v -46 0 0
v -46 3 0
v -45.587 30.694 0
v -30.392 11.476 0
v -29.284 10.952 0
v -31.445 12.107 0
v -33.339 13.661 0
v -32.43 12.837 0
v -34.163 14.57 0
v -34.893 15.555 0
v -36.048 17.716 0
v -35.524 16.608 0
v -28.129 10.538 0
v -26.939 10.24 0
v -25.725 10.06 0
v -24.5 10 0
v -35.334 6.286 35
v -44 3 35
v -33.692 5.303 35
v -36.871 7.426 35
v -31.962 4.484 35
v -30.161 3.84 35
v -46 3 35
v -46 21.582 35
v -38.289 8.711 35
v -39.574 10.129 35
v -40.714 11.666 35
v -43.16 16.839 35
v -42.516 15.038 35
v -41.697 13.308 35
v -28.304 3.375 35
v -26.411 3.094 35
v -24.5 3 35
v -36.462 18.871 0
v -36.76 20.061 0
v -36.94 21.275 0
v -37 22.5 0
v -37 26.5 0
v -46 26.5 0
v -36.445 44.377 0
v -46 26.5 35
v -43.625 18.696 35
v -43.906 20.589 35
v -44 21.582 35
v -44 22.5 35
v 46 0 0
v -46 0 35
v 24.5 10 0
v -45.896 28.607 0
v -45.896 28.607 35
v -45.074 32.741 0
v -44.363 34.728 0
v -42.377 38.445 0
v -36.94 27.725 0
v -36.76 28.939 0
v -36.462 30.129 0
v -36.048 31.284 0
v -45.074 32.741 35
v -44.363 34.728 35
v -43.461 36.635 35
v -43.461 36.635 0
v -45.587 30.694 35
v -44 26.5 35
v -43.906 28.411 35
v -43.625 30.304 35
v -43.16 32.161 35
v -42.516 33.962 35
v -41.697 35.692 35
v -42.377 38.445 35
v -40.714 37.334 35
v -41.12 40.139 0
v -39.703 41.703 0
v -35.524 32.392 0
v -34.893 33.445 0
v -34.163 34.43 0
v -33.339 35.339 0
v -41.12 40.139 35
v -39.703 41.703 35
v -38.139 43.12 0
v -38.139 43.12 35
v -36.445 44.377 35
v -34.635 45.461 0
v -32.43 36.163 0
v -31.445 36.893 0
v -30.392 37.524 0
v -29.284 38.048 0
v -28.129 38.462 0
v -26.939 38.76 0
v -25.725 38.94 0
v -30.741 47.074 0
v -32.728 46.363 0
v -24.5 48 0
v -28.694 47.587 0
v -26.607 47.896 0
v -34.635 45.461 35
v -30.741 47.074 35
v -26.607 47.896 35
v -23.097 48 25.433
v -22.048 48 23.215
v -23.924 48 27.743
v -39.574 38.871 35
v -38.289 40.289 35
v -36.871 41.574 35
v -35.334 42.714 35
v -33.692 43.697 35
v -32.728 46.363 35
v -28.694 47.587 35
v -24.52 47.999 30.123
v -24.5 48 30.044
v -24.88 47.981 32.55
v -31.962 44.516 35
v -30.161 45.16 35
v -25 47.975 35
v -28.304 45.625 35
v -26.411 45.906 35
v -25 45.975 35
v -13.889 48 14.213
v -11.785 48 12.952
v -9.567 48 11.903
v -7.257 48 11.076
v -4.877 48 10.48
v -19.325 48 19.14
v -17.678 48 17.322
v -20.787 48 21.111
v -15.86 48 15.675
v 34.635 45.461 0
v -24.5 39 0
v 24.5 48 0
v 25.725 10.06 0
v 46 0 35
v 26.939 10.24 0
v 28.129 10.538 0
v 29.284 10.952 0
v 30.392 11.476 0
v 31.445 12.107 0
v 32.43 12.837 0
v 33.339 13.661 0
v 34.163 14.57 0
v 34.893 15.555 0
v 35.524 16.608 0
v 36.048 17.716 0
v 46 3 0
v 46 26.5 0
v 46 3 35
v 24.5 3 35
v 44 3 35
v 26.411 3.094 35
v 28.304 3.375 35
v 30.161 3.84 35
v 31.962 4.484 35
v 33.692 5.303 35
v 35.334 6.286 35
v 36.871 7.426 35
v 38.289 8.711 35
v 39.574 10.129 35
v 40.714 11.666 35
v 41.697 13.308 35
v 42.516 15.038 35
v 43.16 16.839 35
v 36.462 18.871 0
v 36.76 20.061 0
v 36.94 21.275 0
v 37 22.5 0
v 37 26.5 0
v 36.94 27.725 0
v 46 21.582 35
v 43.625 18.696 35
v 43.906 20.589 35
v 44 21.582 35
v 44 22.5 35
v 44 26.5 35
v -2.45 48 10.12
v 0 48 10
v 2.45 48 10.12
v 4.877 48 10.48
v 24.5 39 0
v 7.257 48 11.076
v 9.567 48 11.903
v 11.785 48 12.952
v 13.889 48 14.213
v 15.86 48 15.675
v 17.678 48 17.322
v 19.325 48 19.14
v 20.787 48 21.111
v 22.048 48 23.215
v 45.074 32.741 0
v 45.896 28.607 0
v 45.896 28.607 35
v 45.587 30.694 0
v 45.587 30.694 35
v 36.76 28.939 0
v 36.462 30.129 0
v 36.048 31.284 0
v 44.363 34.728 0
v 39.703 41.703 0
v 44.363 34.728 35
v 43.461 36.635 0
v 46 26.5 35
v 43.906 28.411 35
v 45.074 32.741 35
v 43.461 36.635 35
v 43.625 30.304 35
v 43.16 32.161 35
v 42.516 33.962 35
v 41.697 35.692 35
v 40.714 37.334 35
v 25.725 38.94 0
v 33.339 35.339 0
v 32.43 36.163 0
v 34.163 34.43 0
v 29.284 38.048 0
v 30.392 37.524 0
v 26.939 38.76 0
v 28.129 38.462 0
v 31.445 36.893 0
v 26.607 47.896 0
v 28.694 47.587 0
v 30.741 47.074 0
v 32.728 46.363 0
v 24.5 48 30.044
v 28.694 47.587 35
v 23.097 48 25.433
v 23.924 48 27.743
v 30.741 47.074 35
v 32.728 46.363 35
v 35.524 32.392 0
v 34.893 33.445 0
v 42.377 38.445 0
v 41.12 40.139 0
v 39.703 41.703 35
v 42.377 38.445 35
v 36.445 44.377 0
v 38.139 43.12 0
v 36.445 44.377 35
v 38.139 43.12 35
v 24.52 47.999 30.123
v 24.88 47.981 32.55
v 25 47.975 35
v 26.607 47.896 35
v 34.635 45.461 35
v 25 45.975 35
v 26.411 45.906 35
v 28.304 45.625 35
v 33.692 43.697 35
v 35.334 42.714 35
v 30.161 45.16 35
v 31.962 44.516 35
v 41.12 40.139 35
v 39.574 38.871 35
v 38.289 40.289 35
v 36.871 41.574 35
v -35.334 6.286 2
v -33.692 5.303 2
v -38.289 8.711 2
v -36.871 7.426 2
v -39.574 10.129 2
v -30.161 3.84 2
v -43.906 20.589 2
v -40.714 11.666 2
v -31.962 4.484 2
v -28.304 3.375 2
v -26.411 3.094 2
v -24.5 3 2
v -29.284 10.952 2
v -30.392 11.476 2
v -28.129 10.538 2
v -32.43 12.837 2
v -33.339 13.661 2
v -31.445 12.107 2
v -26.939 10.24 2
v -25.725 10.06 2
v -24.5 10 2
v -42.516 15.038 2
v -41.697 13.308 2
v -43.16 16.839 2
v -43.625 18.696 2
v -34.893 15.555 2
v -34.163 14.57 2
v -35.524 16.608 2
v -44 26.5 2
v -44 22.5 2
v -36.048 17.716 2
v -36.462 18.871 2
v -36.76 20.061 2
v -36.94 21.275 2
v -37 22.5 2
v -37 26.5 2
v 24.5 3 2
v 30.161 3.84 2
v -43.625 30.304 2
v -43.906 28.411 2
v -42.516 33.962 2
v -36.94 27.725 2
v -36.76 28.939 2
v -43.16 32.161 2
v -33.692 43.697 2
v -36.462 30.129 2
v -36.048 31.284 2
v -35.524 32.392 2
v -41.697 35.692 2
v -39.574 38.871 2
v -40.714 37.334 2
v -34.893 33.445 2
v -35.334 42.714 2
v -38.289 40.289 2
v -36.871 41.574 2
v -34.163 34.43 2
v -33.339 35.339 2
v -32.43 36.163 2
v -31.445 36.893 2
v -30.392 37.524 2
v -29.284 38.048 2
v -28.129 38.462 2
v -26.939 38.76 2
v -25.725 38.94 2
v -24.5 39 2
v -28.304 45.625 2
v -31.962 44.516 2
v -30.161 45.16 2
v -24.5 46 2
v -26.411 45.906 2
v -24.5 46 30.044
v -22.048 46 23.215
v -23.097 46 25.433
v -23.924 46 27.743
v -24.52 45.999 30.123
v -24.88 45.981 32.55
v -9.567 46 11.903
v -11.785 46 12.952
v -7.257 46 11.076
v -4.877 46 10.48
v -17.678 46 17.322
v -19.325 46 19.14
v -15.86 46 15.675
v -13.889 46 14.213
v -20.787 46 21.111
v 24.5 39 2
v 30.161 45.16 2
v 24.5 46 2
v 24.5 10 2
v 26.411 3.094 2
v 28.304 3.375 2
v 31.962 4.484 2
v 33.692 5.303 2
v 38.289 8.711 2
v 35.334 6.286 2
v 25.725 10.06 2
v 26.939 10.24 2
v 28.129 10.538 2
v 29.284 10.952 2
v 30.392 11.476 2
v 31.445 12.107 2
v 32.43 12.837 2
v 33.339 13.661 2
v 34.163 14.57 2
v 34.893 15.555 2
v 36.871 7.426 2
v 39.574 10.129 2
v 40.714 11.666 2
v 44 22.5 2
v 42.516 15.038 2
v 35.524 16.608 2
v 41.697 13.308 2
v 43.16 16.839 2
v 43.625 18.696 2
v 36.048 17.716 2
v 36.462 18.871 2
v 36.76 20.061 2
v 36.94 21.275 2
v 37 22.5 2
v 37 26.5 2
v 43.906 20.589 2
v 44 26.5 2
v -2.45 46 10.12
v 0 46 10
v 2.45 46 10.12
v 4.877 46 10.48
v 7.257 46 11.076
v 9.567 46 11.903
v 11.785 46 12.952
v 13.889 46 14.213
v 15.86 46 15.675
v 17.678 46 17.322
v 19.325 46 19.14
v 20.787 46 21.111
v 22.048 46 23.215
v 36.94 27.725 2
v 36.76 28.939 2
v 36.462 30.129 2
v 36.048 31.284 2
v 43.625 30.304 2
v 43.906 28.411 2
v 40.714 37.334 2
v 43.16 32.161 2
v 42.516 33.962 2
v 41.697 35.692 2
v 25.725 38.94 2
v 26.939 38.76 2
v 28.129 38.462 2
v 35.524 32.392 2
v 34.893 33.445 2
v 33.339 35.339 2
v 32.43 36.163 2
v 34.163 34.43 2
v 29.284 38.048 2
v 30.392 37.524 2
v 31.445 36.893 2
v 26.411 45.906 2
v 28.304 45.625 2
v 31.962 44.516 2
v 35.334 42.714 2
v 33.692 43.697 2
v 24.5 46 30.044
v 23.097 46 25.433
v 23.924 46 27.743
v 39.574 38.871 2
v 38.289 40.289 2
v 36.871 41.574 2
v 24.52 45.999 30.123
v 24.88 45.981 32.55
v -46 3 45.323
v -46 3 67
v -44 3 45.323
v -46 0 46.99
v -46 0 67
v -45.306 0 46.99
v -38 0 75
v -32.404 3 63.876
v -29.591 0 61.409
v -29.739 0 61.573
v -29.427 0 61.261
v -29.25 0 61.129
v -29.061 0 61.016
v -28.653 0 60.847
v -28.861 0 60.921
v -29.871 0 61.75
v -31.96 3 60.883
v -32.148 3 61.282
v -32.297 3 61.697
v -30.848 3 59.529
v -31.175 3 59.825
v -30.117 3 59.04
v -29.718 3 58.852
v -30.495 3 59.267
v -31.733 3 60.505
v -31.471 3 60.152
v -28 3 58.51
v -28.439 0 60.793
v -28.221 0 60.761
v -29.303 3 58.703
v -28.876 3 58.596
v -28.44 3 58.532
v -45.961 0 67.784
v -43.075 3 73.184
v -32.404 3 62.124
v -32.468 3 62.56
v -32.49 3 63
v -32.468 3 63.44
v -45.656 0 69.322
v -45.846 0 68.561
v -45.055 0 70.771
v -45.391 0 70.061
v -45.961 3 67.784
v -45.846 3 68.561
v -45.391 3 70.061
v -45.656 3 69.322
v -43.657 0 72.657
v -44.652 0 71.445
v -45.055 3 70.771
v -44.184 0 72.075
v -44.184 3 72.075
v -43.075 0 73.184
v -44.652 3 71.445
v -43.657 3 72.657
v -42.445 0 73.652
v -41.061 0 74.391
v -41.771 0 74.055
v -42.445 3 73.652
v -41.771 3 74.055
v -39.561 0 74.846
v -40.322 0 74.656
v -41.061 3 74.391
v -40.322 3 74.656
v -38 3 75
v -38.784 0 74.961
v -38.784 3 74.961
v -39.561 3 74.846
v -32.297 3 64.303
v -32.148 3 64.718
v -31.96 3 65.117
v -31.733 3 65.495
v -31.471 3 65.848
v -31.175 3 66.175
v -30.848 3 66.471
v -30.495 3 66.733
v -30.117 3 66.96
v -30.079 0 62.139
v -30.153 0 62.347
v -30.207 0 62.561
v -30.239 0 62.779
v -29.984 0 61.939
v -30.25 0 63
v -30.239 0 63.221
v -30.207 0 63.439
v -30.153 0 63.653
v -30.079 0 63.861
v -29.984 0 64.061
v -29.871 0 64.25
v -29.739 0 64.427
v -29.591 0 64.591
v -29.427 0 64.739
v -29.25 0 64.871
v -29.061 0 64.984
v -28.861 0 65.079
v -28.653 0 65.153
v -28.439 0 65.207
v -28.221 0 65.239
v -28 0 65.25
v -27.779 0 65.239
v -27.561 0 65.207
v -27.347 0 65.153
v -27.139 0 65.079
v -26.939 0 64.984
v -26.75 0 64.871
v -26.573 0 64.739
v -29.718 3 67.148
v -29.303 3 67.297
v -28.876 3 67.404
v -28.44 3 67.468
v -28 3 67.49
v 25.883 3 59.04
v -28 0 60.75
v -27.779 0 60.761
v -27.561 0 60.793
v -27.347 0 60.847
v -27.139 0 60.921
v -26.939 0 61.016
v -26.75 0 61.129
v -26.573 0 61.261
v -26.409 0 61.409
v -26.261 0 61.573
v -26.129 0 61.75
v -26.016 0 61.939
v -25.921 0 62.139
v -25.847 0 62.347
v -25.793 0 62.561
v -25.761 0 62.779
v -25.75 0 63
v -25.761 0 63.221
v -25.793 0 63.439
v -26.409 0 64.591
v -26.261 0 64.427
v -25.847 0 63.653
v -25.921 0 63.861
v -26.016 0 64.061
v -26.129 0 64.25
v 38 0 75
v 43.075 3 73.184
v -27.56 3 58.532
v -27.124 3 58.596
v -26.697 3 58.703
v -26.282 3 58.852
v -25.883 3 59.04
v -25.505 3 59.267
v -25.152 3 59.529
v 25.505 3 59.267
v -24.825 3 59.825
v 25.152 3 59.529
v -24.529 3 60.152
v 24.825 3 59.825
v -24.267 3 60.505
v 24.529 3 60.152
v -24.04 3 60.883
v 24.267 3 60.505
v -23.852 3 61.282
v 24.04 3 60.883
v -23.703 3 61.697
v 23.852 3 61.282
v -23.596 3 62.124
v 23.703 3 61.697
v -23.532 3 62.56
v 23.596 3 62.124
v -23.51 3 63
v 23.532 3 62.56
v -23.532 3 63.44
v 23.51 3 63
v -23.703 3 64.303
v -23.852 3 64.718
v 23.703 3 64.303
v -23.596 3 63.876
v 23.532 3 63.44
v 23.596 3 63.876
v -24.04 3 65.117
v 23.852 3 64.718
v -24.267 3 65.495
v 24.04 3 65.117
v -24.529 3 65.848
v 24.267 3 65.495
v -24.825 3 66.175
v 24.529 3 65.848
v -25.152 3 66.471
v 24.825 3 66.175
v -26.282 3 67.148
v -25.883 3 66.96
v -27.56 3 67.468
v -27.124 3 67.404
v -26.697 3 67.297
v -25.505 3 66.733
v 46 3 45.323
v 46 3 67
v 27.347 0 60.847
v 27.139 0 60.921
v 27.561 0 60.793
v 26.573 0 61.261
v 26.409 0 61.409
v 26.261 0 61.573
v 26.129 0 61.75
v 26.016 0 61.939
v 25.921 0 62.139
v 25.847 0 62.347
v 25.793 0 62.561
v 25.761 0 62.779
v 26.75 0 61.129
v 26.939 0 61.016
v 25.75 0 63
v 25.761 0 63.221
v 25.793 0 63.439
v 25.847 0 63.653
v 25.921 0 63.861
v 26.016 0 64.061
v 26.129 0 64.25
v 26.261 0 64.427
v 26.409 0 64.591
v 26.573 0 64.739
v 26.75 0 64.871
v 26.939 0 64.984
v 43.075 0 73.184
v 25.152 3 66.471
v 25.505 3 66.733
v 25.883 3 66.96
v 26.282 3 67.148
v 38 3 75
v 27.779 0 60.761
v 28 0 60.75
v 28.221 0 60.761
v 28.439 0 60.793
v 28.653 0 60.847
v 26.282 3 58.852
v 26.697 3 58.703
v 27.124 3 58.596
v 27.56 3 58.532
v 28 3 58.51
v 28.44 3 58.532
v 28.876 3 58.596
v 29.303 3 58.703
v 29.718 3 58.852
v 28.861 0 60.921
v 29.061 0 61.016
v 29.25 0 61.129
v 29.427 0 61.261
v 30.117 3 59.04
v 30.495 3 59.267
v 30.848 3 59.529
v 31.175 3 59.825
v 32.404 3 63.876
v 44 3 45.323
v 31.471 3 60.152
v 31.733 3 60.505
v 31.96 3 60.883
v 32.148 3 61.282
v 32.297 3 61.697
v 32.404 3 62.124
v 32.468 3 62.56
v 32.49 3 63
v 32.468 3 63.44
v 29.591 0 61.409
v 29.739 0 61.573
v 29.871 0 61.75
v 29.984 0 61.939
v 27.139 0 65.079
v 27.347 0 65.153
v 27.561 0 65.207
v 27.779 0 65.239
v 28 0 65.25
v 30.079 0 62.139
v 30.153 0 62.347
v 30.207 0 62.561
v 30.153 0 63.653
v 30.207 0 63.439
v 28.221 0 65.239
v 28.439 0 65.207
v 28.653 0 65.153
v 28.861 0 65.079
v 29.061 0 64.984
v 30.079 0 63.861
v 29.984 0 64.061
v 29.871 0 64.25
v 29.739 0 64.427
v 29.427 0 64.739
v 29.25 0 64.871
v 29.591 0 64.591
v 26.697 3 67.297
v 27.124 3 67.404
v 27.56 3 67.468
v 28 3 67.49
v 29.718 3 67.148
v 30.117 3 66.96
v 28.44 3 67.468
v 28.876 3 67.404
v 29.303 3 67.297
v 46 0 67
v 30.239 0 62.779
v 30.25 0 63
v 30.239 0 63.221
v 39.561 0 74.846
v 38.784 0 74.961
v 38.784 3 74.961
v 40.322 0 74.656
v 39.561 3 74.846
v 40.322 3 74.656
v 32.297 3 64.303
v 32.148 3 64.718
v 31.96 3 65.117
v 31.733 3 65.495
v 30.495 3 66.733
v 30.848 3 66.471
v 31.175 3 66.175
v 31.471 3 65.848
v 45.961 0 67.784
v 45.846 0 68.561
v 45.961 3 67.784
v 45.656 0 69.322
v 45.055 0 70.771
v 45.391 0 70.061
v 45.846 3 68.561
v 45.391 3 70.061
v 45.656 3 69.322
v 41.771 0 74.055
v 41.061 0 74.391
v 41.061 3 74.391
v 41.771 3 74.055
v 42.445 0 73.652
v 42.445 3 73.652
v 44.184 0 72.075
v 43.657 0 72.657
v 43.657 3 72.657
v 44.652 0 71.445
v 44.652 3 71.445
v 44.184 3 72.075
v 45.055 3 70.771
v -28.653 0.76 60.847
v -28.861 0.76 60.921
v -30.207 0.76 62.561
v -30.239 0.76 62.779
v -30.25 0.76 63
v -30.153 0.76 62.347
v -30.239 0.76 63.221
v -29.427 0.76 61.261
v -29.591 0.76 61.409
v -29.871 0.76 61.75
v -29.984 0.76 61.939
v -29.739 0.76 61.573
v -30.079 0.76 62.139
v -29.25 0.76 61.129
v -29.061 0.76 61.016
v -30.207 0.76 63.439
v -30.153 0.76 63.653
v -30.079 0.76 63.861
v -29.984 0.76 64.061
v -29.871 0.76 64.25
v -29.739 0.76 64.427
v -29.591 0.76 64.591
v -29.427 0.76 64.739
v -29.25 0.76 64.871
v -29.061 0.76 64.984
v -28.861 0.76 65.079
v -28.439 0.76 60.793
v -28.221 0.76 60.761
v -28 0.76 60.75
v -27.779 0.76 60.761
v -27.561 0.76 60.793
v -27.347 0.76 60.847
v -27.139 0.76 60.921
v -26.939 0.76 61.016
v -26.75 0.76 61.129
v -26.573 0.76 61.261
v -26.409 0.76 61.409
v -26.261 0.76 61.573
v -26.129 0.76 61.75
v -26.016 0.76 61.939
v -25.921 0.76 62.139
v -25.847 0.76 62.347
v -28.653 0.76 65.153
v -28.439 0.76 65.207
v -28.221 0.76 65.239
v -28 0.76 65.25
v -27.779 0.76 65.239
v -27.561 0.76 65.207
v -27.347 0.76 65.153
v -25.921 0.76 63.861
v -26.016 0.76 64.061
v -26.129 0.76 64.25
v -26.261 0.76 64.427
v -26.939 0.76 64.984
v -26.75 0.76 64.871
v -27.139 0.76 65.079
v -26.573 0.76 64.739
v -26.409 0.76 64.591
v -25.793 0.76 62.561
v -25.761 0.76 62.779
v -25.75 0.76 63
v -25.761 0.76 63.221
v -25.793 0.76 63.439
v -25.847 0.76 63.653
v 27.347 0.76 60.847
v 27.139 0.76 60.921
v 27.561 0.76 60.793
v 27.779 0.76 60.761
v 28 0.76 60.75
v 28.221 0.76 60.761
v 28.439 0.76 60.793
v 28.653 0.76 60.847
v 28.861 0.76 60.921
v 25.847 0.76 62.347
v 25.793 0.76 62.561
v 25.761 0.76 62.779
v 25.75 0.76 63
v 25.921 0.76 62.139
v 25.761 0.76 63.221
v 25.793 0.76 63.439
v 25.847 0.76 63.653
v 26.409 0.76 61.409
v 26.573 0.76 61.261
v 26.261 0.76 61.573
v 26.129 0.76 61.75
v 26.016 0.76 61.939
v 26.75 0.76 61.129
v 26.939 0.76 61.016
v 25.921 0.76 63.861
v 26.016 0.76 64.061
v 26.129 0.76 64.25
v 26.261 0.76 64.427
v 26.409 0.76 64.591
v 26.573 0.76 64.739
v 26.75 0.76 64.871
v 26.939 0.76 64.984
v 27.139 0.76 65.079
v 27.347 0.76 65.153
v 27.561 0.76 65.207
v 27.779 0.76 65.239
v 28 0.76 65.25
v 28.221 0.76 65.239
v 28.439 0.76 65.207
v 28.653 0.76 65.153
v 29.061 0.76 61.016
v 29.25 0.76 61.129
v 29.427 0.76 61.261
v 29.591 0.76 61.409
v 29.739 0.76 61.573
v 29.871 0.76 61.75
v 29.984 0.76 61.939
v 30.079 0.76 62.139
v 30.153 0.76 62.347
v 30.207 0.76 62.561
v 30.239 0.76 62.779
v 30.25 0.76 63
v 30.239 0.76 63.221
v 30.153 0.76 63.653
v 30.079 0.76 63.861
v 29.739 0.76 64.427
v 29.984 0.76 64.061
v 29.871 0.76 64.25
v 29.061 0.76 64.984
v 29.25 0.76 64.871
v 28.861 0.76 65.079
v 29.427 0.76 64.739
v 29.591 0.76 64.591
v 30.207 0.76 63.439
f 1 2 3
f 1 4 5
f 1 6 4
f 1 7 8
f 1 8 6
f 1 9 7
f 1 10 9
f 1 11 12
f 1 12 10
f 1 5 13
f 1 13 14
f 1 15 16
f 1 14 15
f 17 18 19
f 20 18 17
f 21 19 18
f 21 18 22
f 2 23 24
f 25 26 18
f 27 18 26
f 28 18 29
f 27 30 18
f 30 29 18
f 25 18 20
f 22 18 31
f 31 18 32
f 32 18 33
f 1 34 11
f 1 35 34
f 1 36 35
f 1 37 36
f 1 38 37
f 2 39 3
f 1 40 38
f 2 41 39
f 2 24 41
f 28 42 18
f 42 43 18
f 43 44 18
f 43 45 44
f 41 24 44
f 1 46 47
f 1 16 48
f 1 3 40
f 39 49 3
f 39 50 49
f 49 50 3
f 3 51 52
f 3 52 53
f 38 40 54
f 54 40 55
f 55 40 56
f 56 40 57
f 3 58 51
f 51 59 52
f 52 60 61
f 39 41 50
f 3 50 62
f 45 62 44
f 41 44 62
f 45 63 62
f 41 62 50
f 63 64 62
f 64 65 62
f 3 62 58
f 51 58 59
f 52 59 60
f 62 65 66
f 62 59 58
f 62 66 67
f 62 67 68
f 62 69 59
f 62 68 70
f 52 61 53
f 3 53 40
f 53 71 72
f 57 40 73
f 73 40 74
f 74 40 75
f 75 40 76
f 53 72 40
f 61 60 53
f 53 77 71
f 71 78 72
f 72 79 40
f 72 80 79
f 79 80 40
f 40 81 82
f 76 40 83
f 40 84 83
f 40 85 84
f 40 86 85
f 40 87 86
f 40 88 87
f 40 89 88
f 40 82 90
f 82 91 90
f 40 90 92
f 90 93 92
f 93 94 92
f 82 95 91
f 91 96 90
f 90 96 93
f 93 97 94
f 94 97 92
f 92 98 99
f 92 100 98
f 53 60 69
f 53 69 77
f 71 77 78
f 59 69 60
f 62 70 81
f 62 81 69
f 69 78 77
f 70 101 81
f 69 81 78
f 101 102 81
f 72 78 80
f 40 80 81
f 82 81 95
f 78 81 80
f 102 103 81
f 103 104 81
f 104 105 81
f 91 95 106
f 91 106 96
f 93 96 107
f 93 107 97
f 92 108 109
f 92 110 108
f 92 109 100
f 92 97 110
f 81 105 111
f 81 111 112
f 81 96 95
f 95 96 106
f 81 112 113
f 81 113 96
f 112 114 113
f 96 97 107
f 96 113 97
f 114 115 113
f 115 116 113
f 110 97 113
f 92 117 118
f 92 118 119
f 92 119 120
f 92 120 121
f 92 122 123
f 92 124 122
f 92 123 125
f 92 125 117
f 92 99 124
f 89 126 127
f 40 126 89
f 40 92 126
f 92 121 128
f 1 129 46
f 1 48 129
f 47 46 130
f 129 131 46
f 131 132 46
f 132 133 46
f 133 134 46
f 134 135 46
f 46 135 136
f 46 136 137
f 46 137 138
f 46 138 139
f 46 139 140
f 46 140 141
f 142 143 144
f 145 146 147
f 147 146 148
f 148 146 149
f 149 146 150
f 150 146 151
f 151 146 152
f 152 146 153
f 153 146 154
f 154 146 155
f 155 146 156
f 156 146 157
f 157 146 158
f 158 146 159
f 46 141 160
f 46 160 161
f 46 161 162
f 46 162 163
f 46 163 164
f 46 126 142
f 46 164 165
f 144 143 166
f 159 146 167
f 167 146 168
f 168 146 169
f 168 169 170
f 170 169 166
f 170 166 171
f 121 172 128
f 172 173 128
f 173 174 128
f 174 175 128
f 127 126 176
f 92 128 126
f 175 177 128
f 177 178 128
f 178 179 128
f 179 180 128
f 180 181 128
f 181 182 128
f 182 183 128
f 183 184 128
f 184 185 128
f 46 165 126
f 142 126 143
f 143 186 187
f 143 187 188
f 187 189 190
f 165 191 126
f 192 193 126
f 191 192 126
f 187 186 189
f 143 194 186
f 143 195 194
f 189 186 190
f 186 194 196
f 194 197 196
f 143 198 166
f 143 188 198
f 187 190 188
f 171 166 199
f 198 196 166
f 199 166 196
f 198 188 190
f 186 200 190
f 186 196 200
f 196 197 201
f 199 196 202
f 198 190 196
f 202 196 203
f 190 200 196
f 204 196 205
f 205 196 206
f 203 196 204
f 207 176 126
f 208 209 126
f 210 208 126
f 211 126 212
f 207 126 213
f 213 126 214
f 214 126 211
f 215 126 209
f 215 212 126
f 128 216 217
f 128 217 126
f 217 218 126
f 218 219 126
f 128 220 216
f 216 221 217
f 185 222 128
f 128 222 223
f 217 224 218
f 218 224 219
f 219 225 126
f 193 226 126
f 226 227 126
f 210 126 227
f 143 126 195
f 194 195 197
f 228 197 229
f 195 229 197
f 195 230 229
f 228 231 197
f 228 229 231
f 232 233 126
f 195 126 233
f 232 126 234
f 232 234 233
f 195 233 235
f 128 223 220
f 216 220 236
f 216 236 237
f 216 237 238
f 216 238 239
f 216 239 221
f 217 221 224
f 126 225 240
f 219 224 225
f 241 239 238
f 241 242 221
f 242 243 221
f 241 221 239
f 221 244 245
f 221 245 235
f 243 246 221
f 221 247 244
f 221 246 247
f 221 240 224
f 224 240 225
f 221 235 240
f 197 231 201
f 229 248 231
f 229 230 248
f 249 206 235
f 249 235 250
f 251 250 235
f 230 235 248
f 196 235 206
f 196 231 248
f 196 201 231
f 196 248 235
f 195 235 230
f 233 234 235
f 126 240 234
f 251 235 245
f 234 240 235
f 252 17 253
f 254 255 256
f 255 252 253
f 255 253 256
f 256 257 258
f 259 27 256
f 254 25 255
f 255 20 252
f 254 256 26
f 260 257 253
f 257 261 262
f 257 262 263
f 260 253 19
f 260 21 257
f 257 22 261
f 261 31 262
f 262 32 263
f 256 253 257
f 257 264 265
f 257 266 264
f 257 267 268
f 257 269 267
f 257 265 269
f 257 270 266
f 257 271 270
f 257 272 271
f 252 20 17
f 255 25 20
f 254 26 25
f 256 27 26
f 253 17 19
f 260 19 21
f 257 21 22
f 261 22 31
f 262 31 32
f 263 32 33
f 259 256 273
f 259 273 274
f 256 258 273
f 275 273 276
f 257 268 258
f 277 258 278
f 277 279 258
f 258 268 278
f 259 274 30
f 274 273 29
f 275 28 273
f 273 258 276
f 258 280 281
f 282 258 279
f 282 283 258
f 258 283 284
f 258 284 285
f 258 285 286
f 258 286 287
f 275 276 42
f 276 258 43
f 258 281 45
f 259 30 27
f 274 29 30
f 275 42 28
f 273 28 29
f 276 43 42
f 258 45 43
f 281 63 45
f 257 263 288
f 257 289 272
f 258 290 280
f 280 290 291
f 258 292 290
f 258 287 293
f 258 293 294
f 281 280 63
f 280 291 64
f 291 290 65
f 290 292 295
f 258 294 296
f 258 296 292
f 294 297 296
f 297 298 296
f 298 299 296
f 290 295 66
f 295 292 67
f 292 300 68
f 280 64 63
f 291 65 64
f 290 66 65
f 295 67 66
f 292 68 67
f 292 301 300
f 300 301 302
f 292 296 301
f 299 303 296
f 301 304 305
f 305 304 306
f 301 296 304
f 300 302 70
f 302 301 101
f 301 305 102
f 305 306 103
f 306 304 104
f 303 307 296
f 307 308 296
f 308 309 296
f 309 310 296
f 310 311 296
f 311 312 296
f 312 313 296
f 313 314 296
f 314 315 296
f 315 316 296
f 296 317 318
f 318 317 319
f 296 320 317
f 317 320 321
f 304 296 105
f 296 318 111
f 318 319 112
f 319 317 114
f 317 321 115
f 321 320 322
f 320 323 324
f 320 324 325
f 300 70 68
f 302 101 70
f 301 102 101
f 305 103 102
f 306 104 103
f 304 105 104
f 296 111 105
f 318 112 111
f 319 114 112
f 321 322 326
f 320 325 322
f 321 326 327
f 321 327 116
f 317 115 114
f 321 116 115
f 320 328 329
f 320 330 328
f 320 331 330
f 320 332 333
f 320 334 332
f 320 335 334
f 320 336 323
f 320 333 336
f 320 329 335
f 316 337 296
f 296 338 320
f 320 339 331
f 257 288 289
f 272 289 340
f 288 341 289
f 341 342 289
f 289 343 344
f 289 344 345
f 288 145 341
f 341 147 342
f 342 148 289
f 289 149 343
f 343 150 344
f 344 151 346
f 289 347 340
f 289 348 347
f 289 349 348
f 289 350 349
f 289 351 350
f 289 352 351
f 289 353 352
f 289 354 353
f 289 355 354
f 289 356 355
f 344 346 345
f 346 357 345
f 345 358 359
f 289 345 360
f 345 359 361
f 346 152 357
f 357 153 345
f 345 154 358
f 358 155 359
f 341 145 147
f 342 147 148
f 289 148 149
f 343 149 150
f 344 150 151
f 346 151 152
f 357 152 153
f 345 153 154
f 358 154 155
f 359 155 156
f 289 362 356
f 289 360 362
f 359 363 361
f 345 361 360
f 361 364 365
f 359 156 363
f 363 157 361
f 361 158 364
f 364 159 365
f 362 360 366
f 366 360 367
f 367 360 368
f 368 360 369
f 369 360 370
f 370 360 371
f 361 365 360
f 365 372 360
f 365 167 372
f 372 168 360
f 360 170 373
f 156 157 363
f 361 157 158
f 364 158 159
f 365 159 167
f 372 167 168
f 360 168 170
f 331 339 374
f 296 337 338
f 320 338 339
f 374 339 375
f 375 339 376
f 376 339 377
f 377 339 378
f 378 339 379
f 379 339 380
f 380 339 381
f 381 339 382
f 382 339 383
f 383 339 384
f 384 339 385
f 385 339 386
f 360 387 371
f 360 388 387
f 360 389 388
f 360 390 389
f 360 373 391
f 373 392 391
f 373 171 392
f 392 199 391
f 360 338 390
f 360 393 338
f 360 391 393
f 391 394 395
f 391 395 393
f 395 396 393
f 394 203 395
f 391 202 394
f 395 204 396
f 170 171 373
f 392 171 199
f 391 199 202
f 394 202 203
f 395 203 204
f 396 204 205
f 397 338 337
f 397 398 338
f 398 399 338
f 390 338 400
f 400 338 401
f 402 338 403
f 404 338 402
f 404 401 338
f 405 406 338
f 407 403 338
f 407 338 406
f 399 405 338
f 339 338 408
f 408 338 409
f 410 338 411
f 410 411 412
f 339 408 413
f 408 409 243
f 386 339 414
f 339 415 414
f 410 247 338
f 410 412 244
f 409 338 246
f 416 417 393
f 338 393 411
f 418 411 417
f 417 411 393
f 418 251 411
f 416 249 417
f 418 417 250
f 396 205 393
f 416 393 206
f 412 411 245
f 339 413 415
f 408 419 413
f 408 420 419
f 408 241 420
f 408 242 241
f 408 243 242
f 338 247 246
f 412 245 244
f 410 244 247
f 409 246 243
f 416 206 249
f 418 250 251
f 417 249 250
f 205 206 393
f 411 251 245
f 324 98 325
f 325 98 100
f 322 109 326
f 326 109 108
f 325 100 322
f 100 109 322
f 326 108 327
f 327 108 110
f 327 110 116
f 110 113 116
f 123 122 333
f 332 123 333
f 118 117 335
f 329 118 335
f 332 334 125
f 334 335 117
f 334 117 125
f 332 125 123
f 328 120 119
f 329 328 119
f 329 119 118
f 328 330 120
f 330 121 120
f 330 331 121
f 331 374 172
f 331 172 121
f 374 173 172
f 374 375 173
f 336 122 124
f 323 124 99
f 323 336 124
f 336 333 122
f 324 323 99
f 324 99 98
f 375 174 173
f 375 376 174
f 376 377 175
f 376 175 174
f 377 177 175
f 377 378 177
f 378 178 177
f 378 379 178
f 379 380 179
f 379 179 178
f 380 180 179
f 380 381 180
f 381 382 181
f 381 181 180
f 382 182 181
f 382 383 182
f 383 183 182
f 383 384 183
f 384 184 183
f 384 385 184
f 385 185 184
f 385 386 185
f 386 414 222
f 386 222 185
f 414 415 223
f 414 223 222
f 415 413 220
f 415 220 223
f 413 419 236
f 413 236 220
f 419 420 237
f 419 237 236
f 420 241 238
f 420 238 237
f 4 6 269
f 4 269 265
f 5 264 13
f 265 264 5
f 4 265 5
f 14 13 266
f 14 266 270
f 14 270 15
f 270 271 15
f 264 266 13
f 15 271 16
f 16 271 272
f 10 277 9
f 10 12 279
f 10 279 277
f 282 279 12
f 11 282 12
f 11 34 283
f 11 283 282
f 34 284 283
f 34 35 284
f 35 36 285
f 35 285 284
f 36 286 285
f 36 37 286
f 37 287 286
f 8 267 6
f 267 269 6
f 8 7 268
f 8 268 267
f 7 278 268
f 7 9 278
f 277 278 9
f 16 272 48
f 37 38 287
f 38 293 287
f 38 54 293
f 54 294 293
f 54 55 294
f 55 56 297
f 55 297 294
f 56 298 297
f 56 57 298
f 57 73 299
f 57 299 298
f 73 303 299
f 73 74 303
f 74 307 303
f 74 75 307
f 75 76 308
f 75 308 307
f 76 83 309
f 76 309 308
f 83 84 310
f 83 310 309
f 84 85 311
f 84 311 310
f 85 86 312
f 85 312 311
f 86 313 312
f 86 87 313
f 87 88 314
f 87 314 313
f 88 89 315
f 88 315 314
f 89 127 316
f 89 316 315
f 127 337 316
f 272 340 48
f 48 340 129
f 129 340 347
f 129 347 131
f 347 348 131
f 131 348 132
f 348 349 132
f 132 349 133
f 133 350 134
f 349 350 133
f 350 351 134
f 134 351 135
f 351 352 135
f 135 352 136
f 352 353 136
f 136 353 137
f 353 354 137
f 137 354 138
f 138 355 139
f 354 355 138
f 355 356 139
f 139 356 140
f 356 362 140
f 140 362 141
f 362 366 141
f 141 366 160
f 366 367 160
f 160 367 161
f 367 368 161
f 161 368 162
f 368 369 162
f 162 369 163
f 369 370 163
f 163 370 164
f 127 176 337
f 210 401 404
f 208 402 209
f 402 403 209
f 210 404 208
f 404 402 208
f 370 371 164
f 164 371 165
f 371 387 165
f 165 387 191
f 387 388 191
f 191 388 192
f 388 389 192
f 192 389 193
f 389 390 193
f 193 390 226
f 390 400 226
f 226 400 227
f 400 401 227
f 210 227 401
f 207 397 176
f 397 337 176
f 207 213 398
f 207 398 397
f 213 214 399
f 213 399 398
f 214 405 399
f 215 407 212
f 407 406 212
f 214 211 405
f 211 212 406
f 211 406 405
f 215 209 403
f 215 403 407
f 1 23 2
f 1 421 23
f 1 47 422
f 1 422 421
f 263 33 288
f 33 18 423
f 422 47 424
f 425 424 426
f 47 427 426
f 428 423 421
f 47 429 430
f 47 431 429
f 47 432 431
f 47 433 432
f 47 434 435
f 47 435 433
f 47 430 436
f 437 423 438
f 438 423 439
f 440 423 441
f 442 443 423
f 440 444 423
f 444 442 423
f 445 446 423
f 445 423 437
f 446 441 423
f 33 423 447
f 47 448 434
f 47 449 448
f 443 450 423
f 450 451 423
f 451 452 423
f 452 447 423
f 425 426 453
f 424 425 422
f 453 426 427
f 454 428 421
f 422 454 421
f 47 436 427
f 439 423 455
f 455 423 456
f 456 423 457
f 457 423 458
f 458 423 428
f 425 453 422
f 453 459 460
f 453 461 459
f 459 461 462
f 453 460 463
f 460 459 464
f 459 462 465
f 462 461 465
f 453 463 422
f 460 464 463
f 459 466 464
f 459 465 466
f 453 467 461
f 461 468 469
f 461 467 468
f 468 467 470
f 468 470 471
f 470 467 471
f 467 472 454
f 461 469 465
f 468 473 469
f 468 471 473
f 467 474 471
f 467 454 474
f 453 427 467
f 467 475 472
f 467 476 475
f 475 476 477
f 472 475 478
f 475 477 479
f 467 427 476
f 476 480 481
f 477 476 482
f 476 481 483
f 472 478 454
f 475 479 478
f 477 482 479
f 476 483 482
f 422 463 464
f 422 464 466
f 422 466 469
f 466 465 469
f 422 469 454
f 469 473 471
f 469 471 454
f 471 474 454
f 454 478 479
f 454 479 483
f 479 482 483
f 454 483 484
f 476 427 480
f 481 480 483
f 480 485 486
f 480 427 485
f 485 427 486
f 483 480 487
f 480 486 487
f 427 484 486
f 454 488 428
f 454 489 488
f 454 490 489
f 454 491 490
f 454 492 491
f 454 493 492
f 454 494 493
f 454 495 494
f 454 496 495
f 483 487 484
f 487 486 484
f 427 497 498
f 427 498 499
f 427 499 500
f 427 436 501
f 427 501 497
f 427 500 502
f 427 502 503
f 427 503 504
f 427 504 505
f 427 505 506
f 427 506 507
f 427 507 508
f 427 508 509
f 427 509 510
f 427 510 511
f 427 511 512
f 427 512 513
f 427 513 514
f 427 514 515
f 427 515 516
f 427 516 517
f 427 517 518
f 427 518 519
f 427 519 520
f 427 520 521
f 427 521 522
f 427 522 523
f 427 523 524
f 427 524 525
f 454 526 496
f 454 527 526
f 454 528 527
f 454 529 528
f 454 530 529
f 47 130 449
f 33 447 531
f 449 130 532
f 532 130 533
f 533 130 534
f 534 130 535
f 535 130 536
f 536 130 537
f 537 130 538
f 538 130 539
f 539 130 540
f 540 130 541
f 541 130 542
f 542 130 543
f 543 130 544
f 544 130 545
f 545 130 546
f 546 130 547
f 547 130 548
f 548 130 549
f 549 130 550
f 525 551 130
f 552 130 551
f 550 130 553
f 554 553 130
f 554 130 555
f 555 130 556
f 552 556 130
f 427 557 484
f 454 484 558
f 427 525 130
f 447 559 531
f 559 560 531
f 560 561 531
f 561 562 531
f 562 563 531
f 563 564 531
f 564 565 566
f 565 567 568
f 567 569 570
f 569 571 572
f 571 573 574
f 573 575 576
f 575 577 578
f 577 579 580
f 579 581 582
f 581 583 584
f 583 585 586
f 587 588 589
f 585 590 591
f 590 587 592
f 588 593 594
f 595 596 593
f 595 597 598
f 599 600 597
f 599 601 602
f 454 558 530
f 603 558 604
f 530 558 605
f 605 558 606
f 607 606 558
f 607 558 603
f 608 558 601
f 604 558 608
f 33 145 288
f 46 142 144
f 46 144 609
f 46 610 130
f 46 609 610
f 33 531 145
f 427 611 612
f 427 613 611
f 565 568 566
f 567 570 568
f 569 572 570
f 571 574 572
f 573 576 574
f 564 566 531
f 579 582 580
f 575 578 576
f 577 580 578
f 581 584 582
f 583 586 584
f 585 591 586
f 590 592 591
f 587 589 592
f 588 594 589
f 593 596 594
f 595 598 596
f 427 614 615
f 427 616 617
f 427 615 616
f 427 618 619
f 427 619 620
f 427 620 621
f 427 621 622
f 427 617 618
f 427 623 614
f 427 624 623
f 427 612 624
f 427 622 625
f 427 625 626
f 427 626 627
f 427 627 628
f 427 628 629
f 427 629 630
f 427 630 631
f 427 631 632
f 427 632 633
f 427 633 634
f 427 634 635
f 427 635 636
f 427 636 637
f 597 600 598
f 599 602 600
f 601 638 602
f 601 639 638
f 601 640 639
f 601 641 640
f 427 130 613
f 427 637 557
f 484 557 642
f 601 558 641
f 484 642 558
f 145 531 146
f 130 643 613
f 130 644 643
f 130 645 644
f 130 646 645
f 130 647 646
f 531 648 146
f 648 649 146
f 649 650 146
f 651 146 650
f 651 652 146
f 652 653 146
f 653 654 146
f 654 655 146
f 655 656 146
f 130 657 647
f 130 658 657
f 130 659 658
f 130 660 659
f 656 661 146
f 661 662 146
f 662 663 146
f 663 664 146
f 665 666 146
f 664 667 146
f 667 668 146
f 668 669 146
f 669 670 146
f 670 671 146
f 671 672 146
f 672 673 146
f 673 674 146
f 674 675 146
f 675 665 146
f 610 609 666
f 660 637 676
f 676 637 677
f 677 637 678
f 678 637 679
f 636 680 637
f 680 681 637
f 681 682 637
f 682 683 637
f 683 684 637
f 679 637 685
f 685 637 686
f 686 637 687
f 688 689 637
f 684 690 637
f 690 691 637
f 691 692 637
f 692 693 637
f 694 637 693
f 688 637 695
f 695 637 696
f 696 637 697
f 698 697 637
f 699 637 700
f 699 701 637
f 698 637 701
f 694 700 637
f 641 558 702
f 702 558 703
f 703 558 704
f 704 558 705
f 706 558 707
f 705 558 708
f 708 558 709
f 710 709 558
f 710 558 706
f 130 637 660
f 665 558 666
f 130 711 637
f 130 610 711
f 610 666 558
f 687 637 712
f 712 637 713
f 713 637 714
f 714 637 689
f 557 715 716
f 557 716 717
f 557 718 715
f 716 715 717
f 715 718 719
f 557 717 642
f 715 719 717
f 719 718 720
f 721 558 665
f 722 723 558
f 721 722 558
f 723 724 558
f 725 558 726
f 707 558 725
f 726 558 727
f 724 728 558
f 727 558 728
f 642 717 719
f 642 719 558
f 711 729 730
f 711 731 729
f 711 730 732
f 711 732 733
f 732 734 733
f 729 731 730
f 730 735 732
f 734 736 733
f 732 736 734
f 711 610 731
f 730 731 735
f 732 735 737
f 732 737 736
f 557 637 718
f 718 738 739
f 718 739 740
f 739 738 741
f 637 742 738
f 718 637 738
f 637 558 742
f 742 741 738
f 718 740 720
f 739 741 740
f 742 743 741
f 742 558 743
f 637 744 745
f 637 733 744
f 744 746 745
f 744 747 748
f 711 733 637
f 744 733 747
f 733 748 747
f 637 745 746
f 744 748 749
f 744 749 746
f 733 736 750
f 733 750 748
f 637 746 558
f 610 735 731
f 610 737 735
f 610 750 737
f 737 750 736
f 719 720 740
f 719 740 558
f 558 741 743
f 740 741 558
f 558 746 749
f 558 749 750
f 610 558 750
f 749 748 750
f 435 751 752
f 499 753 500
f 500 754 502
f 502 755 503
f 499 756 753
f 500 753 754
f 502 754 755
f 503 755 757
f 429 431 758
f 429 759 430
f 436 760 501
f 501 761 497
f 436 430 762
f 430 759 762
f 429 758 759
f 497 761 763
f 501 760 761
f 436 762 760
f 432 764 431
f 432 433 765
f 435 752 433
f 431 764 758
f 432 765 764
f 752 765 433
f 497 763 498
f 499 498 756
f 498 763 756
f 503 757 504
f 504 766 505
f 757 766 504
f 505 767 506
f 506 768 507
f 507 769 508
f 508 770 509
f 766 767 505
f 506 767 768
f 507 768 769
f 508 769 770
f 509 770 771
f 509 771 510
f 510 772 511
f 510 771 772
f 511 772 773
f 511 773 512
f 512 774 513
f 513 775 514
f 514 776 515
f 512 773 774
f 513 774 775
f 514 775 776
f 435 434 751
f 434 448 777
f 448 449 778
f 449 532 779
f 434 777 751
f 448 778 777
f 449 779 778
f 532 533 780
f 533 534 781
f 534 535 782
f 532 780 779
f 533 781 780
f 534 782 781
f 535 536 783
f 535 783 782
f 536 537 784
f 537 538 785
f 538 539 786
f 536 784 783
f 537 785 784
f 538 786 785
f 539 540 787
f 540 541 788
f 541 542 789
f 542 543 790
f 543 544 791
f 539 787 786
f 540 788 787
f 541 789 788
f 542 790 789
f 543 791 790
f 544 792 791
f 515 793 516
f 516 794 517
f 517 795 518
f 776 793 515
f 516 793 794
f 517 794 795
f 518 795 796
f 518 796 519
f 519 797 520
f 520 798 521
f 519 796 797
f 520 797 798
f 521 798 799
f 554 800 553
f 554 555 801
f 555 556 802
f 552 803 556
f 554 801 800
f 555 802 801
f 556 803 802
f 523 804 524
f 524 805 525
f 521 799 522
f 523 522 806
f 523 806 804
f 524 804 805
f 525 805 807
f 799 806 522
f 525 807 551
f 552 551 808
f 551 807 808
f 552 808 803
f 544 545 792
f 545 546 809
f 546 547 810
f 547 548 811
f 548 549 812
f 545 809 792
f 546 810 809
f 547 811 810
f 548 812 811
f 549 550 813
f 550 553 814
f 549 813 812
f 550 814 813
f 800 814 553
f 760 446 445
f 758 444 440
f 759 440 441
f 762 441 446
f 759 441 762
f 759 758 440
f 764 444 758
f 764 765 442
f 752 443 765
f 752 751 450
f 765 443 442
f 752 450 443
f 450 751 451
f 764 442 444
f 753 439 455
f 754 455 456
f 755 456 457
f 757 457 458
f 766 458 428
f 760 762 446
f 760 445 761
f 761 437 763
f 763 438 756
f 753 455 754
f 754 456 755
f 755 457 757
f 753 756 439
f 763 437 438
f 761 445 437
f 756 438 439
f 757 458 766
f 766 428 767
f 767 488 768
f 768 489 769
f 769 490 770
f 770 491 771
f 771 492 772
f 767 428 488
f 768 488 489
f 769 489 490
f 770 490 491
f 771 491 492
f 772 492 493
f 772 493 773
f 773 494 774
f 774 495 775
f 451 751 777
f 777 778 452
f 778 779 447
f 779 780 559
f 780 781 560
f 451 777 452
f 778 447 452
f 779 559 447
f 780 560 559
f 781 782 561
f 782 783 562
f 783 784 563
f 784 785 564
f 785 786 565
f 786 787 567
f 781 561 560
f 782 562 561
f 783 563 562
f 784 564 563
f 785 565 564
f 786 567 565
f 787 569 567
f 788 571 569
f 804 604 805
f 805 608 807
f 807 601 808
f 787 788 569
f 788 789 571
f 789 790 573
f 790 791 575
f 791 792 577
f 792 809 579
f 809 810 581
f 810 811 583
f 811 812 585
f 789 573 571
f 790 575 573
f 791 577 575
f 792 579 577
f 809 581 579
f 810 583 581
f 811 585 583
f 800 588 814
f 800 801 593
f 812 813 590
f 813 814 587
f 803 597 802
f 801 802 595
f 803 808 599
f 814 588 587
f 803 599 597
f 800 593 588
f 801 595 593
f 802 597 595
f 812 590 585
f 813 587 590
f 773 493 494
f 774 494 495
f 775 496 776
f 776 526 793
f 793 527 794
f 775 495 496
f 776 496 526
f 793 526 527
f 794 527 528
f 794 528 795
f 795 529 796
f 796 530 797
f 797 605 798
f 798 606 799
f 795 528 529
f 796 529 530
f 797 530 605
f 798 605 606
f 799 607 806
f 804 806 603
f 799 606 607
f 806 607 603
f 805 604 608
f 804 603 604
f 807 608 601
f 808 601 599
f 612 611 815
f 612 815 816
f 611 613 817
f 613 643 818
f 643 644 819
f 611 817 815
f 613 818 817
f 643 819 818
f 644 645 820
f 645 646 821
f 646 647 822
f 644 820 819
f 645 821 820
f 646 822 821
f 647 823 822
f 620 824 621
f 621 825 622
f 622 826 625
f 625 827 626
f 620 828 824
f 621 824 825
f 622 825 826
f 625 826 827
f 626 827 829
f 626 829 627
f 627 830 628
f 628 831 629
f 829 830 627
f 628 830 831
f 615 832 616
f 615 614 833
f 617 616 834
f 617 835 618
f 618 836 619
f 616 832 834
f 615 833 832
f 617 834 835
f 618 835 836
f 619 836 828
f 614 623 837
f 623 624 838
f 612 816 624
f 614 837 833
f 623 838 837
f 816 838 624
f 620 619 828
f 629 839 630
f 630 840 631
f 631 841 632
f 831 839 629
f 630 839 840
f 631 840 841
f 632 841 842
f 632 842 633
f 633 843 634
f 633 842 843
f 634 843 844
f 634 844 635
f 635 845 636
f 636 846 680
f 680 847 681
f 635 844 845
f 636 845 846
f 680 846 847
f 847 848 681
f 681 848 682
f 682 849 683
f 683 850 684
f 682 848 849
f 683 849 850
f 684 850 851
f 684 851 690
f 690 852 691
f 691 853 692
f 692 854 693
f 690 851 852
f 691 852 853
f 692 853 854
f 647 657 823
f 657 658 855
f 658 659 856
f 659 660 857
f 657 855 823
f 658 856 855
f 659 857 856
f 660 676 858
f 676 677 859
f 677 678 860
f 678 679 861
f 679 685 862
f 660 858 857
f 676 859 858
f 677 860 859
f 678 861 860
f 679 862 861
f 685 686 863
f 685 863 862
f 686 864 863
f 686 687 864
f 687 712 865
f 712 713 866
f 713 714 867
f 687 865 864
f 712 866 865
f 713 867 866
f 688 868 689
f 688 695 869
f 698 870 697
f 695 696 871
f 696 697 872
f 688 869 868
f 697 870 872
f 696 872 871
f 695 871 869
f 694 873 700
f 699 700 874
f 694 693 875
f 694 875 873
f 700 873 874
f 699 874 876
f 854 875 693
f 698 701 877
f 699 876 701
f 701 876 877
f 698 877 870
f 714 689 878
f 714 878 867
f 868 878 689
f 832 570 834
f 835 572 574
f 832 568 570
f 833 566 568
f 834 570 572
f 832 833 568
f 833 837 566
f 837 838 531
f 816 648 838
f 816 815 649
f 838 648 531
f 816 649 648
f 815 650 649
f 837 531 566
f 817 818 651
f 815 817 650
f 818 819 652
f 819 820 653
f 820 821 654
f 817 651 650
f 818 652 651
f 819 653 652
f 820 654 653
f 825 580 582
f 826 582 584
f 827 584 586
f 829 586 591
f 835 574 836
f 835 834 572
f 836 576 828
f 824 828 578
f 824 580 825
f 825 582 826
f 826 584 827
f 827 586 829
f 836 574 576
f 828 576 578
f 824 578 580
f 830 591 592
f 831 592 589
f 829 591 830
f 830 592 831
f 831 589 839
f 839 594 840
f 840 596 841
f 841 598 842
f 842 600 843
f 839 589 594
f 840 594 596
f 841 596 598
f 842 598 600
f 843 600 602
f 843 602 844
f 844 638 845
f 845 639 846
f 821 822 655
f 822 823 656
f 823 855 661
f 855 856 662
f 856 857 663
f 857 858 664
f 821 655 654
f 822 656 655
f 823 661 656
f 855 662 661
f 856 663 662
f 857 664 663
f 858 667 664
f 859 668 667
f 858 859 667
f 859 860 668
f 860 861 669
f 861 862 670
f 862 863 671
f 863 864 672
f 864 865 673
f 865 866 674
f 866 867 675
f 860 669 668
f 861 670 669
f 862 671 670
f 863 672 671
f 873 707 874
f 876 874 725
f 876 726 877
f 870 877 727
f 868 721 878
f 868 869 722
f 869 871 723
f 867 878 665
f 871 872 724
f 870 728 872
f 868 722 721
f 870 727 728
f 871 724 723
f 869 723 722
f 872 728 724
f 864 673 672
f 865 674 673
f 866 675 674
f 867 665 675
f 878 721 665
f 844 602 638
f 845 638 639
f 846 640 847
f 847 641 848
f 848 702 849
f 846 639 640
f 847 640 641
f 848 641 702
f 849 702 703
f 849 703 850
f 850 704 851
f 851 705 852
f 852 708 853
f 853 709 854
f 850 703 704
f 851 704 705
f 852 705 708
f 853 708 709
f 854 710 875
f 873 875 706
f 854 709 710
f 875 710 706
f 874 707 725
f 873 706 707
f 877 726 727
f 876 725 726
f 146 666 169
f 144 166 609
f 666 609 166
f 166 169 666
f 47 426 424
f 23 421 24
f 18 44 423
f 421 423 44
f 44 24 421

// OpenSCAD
// file: dettol_stojan.scad
// Nástenný stojan na tekuté mydlo Dettol Soft on Skin 250 ml
// Tlač: Ender 3 Pro, PETG (do kúpeľne) alebo PLA, tlačiť VZPRIAMENE
// (dno košíka na podložke, zadná doska kolmo hore) – bez podpier.
//
// Rozmery fľaše si odmerajte posuvkou v najširšom mieste spodnej časti
// a upravte parametre nižšie (ostatné sa prepočíta samo).

/* [Fľaša] */
flasa_sirka  = 85;   // šírka fľaše (zľava doprava)
flasa_hlbka  = 40;   // hĺbka fľaše (spredu dozadu)
flasa_radius = 18;   // zaoblenie rohov pôdorysu fľaše
vola         = 1.5;  // vôľa na každú stranu

/* [Košík] */
stena       = 2.8;   // hrúbka steny košíka (7 perimetrov pri 0,4 mm dýze)
dno         = 3;     // hrúbka dna
vyska_kosik = 45;    // výška košíka (vonkajšia)
vyrez_sirka = 44;    // šírka predného výrezu (vidno etiketu)
vyrez_od_dna = 15;   // od akej výšky začína predný výrez
odtok_d     = 6;     // priemer odtokových otvorov v dne
dno_okraj   = 0;     // 0 = odtokové otvory, > 0 = veľký otvor v dne, ostane okraj tejto šírky

/* [Zadná doska] */
doska_hrubka = 4;
doska_vyska  = 100;
skrutka_d    = 4.5;  // otvor pre skrutku 4 mm
hlava_d      = 9;    // priemer zápustnej hlavy
skrutky_rozostup = 56;
skrutky_od_vrchu = 15;

$fn = 64;

in_w = flasa_sirka + 2*vola;
in_d = flasa_hlbka + 2*vola;
in_r = flasa_radius + vola;
out_w = in_w + 2*stena;
out_d = in_d + stena + doska_hrubka;   // zadná stena košíka = doska

module rrect(w, d, r, h) {
    // zaoblený obdĺžnik, stred v X, zadná hrana na y=0
    hull() for (x = [-w/2 + r, w/2 - r], y = [r, d - r])
        translate([x, y, 0]) cylinder(r = r, h = h);
}

module kosik() {
    difference() {
        // vonkajší tvar – zadné rohy rovné, aby sedel na dosku
        hull() {
            translate([-out_w/2, 0, 0]) cube([out_w, 1, vyska_kosik]);
            translate([0, 0, 0]) rrect(out_w, out_d, in_r + stena, vyska_kosik);
        }
        // dutina
        translate([0, doska_hrubka, dno]) rrect(in_w, in_d, in_r, vyska_kosik);
        // predný výrez so zaobleným spodkom
        translate([0, out_d - stena - 1, vyrez_od_dna + vyrez_sirka/2])
            rotate([-90, 0, 0]) hull() {
                cylinder(d = vyrez_sirka, h = stena + 2);
                translate([0, -vyska_kosik, 0]) cylinder(d = vyrez_sirka, h = stena + 2);
            }
        // odtok: veľký otvor v dne alebo 3 x 2 otvory
        if (dno_okraj > 0)
            translate([0, doska_hrubka + dno_okraj, -1])
                rrect(in_w - 2*dno_okraj, in_d - 2*dno_okraj, in_r - dno_okraj, dno + 2);
        else
            for (x = [-1, 0, 1], y = [-1, 1])
                translate([x * 22, doska_hrubka + in_d/2 + y * 12, -1])
                    cylinder(d = odtok_d, h = dno + 2);
    }
}

module doska() {
    r = 8;
    difference() {
        hull() {
            translate([-out_w/2, 0, 0]) cube([out_w, doska_hrubka, 1]);
            for (x = [-out_w/2 + r, out_w/2 - r])
                translate([x, 0, doska_vyska - r]) rotate([-90, 0, 0])
                    cylinder(r = r, h = doska_hrubka);
        }
        for (x = [-skrutky_rozostup/2, skrutky_rozostup/2])
            translate([x, 0, doska_vyska - skrutky_od_vrchu]) {
                rotate([-90, 0, 0]) translate([0, 0, -1])
                    cylinder(d = skrutka_d, h = doska_hrubka + 2);
                // zápustná hlava (90°), otvorená dopredu
                translate([0, doska_hrubka - (hlava_d - skrutka_d)/2 + 0.01, 0])
                    rotate([-90, 0, 0])
                        cylinder(d1 = skrutka_d, d2 = hlava_d, h = (hlava_d - skrutka_d)/2);
            }
    }
}

module vystuhy() {
    // bočné trojuholníkové výstuhy medzi košíkom a doskou
    v = doska_vyska - vyska_kosik - 28;
    for (x = [-out_w/2, out_w/2 - stena])
        translate([x, 0, vyska_kosik - 0.01]) rotate([90, 0, 90])
            linear_extrude(stena)
                polygon([[0, 0], [out_d * 0.45, 0], [0, v]]);
}

union() {
    kosik();
    doska();
    vystuhy();
}
// main file
// Odľahčená verzia stojana – tlač do ~2 h (Ender 3 Pro).
// Nižší košík, tenšie steny, kratšia doska a veľký otvor v dne
// (fľaša stojí na 7 mm okraji). Ostatné parametre berie z hlavného súboru.
include <dettol_stojan.scad>

stena        = 2.0;  // 5 čiar pri 0,4 mm dýze
dno          = 2.0;
vyska_kosik  = 35;
vyrez_sirka  = 50;
vyrez_od_dna = 10;
doska_hrubka = 3;
doska_vyska  = 75;
skrutky_od_vrchu = 12;
dno_okraj    = 7;
